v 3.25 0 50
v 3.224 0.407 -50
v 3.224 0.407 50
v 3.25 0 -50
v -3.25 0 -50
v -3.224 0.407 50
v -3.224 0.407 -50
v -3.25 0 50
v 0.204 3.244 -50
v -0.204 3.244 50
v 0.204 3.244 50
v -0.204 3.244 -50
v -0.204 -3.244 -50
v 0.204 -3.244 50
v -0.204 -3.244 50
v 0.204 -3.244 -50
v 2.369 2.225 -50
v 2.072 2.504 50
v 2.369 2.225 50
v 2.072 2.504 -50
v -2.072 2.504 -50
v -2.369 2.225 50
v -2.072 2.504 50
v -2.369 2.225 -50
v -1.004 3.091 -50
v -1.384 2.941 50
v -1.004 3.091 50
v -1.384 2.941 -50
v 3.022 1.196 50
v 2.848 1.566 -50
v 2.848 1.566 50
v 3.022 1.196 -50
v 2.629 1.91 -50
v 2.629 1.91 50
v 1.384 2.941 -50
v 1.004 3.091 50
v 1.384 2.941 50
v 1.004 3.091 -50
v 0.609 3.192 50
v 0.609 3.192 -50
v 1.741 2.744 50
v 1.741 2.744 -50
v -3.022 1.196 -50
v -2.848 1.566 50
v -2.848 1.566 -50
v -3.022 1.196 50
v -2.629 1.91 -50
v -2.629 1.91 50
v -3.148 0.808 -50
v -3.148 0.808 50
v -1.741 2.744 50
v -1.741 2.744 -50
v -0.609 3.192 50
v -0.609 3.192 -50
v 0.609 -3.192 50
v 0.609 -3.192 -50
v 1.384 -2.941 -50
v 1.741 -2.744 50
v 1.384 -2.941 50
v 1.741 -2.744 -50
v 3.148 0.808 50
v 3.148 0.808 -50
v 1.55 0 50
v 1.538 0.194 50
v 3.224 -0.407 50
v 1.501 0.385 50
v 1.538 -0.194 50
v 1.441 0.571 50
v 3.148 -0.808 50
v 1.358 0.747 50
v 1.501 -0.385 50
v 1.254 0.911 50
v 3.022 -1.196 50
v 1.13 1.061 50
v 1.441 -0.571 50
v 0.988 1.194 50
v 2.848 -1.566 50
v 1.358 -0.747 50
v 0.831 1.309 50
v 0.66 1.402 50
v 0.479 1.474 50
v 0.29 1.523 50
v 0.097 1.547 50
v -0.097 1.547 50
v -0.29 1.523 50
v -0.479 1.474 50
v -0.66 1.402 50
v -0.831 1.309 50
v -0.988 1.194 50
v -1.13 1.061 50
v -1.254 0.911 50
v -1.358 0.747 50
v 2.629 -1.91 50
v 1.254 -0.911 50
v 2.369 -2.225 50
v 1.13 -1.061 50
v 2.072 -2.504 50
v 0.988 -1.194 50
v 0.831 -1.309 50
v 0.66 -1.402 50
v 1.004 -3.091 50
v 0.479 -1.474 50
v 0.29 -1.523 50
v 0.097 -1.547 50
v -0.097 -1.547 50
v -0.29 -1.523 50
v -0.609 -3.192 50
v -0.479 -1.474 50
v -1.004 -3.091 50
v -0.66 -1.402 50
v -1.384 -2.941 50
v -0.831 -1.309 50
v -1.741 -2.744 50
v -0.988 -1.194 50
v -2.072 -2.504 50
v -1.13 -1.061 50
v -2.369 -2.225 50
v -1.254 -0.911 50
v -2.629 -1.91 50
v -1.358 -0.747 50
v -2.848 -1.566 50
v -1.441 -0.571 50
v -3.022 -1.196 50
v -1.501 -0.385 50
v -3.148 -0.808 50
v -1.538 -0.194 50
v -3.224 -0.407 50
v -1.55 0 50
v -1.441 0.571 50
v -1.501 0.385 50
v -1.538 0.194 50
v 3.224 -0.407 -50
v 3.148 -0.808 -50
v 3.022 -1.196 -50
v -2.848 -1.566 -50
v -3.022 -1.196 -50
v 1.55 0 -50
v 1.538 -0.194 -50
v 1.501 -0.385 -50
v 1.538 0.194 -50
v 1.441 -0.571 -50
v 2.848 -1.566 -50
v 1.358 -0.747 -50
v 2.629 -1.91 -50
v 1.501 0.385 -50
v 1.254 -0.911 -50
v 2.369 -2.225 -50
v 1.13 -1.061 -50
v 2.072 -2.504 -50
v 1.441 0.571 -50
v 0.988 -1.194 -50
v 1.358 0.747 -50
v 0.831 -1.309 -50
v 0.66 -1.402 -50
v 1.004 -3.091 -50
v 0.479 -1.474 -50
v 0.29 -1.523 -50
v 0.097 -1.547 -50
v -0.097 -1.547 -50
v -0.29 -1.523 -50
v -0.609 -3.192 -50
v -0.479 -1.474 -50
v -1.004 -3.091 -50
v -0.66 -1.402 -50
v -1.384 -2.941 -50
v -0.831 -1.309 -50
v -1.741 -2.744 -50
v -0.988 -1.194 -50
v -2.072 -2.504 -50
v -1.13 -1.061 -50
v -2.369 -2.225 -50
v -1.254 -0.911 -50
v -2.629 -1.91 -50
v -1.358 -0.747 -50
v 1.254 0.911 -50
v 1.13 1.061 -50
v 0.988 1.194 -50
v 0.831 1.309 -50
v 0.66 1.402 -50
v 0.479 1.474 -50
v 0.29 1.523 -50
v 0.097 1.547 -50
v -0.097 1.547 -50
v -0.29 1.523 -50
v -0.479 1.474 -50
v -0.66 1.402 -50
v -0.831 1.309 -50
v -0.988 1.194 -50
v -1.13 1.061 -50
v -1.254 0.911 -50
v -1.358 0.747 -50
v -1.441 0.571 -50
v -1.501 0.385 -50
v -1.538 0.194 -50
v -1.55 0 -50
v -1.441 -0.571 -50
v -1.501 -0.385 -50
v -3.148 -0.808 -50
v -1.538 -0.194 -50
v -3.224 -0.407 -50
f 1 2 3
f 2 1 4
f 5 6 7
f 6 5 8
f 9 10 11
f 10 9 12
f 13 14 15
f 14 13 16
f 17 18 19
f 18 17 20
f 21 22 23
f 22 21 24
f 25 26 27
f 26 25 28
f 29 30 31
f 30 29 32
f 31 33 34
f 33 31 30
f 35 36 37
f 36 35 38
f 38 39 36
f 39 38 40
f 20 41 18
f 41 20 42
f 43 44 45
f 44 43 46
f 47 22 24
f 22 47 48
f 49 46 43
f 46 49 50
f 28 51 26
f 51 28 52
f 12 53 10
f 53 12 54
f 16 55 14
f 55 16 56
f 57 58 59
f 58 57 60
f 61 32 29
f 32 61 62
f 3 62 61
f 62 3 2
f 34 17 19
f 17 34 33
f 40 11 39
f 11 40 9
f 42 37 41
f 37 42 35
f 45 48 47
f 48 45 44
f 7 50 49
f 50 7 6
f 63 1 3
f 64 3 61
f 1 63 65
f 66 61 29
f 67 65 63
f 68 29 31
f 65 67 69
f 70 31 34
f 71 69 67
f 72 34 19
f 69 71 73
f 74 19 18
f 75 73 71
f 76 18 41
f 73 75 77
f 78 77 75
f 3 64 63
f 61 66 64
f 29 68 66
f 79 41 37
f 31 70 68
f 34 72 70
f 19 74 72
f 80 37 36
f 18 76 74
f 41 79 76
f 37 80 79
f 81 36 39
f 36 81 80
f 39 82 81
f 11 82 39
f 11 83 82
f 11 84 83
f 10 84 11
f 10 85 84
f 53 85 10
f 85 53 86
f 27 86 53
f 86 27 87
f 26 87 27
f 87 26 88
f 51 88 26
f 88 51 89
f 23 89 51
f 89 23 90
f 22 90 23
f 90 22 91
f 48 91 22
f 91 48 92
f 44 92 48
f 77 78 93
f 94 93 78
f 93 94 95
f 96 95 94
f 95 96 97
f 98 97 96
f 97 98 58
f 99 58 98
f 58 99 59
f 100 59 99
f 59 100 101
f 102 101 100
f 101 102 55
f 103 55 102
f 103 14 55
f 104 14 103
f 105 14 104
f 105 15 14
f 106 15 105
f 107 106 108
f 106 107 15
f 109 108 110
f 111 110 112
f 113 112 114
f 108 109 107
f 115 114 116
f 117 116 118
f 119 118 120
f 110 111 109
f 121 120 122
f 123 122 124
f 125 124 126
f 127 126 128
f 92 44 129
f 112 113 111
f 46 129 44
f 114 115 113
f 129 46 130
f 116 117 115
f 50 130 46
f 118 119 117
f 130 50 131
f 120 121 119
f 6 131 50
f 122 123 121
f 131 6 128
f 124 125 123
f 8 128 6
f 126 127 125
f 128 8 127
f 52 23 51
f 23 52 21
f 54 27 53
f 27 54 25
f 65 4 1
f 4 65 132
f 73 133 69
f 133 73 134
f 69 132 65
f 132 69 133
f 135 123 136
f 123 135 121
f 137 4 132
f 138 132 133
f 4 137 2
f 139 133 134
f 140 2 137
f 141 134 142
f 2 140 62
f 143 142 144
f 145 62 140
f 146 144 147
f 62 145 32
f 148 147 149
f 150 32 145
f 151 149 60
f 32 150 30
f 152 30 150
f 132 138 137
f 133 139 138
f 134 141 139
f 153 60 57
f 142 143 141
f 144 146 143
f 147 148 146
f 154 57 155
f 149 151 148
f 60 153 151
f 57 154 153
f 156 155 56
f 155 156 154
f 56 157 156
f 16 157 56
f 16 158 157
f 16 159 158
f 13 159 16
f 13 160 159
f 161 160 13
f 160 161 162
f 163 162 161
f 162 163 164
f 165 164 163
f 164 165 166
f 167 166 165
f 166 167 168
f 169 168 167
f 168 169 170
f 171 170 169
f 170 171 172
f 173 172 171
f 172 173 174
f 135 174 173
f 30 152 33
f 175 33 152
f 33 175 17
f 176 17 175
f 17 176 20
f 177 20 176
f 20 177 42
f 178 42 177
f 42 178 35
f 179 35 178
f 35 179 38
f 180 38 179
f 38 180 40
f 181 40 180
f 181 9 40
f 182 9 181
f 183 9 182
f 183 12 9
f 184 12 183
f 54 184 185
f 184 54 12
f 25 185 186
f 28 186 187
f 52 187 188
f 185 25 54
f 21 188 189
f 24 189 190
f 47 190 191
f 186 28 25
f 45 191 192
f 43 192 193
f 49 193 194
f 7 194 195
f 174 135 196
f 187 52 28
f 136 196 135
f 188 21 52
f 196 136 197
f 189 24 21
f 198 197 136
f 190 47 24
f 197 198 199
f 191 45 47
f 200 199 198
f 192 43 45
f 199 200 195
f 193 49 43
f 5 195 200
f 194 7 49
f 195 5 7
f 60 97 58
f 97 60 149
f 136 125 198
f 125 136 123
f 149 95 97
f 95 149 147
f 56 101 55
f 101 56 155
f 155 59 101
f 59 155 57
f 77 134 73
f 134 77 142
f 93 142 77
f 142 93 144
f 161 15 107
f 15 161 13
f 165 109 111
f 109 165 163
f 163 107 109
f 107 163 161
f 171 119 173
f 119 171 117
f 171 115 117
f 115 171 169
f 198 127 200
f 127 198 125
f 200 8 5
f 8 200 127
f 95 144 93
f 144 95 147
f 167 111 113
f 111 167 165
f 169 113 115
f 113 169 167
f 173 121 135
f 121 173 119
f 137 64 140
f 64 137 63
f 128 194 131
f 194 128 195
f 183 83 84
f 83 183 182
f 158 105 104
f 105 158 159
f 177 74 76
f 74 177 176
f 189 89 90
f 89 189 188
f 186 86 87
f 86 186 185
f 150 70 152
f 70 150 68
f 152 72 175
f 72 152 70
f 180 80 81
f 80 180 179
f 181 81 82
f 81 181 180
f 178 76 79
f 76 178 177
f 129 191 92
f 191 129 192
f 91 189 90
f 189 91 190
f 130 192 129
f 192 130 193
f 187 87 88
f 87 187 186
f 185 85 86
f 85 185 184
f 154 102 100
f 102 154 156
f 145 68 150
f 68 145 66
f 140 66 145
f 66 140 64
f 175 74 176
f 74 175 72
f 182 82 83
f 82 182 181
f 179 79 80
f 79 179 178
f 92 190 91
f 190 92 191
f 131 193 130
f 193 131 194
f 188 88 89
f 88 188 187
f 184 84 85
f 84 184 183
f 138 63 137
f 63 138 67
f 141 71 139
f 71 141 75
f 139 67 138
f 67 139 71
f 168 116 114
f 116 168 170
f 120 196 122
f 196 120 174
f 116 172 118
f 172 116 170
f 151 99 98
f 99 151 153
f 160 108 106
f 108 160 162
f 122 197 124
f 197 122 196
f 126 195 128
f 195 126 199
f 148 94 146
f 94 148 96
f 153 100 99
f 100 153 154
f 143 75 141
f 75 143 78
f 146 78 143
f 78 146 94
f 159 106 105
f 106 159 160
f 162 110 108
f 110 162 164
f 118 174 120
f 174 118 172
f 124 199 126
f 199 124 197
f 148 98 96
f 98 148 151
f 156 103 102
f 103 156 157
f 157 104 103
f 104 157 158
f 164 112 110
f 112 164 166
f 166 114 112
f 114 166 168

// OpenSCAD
$fn = 50;


difference() {
	union() {
		translate(v = [0, 0, -50.0000000000]) {
			cylinder(h = 100, r = 3.2500000000);
		}
	}
	union() {
		translate(v = [0, 0, -100.0000000000]) {
			cylinder(h = 200, r = 1.5500000000);
		}
	}
}
